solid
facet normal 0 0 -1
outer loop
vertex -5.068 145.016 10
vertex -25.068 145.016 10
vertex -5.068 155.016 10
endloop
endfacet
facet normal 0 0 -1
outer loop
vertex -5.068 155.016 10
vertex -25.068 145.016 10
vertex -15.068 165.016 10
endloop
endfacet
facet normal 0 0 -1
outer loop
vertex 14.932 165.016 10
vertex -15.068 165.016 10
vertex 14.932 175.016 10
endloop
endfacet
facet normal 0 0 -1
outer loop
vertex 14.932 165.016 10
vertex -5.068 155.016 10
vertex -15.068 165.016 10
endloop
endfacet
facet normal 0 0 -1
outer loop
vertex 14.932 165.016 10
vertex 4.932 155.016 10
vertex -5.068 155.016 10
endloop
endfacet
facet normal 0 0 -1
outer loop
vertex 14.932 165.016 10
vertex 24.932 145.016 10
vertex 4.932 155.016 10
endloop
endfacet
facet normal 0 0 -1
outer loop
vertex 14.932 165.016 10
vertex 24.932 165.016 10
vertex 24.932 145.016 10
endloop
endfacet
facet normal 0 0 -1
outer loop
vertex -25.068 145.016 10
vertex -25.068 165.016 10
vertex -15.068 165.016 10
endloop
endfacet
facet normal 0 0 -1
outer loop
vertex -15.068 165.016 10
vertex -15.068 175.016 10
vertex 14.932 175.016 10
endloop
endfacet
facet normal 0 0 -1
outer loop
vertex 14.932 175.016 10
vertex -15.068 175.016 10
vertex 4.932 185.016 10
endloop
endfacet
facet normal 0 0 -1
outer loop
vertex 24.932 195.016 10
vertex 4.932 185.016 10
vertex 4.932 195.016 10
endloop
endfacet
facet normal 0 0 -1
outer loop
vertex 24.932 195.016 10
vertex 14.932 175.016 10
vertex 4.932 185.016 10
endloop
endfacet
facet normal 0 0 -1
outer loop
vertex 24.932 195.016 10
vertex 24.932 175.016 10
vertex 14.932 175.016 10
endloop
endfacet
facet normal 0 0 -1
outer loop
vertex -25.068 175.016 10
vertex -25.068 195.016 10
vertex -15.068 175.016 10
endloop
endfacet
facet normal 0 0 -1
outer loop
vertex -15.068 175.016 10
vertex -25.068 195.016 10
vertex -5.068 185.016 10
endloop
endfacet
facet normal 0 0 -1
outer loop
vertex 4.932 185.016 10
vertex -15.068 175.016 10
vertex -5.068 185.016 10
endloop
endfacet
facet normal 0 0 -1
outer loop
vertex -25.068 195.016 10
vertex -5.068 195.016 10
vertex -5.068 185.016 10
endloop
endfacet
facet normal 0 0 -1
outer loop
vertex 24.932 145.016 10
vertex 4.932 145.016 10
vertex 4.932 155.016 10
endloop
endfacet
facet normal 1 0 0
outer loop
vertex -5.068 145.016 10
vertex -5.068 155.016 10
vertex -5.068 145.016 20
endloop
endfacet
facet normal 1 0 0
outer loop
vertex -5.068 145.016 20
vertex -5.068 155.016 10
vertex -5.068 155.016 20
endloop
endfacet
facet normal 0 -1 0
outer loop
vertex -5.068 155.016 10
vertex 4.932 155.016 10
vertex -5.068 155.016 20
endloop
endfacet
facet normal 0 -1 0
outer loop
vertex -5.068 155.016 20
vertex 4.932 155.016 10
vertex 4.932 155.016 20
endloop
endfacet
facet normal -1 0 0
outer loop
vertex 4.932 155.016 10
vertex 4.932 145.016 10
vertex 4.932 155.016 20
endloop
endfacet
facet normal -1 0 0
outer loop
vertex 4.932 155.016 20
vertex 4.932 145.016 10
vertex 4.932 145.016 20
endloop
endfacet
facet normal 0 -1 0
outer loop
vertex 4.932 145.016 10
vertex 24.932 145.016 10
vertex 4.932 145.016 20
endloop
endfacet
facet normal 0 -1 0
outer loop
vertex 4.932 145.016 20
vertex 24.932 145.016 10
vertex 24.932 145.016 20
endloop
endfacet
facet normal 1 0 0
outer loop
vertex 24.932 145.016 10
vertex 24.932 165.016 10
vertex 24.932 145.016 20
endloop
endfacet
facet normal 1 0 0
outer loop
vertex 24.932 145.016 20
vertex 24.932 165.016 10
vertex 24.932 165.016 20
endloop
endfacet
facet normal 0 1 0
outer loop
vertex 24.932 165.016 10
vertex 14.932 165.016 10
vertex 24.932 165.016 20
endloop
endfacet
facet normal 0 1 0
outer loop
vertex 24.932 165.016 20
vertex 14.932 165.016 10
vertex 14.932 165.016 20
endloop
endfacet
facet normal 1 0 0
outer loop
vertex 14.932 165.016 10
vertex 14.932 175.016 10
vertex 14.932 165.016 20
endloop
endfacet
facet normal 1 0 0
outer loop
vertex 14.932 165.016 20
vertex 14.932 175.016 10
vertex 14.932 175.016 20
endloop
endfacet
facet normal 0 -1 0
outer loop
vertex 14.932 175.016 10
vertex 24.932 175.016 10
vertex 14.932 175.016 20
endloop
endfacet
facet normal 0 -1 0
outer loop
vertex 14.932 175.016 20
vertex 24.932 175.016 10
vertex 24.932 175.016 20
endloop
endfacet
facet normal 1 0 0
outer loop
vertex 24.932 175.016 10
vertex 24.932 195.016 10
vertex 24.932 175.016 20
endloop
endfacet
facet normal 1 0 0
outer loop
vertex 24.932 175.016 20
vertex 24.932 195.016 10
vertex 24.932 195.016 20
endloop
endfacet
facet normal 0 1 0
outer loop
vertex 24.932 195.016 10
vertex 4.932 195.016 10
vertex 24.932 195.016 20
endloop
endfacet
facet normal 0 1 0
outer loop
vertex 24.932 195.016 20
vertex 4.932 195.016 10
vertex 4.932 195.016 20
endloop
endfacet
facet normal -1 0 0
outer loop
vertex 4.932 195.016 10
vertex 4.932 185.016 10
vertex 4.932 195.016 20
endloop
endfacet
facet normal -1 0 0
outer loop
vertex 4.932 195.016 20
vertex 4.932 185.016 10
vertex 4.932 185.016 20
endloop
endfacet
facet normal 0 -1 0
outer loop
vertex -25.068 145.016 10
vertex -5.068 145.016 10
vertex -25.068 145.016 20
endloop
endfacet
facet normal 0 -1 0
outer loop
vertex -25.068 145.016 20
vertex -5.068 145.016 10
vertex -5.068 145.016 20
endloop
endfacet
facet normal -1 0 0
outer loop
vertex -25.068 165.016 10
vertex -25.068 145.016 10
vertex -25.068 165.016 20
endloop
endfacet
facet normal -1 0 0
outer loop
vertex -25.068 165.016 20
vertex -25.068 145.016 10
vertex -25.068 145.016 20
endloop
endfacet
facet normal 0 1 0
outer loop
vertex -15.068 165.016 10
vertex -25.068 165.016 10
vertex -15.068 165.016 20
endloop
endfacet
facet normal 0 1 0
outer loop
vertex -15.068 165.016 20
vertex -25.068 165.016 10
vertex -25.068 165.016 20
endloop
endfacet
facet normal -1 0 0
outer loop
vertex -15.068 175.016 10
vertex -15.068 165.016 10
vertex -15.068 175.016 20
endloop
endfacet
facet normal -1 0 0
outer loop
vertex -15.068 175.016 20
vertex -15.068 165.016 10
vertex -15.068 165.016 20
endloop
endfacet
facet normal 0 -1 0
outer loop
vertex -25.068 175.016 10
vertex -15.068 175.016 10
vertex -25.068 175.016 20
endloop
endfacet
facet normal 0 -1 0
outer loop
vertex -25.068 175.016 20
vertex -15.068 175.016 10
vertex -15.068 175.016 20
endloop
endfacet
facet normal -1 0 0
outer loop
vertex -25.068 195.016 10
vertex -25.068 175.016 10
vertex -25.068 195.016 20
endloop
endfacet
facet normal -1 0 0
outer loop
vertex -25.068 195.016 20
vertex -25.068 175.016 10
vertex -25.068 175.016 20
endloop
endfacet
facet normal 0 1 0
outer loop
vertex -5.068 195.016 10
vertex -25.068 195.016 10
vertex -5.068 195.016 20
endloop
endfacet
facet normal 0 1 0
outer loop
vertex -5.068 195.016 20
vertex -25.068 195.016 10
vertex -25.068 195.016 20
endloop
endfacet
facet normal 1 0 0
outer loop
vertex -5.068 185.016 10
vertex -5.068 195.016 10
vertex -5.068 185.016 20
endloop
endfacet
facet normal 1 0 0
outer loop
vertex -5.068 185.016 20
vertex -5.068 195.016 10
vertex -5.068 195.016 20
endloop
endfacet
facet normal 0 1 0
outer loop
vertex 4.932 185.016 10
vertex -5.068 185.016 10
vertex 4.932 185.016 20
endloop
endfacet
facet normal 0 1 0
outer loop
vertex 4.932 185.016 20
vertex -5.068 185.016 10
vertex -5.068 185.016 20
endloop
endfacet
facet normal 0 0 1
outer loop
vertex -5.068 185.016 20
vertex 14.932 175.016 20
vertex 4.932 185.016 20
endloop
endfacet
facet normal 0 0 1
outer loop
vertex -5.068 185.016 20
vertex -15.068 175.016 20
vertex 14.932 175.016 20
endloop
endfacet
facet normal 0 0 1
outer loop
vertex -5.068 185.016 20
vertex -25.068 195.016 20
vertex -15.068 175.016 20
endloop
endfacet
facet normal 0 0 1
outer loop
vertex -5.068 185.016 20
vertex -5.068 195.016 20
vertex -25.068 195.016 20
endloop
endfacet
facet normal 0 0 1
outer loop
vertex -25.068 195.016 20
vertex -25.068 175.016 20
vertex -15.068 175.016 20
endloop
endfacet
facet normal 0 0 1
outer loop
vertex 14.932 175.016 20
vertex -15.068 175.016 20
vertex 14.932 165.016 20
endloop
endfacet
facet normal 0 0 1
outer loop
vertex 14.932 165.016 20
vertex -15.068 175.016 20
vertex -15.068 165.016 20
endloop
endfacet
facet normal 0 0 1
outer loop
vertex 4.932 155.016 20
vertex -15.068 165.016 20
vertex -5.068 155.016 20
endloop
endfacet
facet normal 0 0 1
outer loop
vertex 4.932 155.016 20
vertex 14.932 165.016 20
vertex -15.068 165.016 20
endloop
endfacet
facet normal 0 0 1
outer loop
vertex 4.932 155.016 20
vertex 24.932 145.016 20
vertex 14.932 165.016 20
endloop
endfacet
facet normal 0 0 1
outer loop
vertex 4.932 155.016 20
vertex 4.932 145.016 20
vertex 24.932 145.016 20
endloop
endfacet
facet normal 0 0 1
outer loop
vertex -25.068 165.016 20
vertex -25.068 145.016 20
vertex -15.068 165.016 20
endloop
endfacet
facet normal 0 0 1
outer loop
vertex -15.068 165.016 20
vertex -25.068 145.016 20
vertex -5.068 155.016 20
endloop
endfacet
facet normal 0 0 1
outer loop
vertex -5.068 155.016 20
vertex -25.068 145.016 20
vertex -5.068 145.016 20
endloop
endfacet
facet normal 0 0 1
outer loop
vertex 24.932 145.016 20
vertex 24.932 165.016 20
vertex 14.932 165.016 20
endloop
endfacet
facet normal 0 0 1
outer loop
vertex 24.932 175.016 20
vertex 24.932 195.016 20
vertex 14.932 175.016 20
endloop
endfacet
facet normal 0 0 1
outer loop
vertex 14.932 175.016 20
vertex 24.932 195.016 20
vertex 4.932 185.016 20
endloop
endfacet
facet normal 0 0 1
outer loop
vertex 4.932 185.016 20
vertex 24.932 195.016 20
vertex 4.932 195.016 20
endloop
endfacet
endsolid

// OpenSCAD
// file: l2_rig_joint.scad
// The joint of the L2 glue rig, shared by its three parts.
//
//     GlueRig_ArmBodyToEndArmHub_A.scad   cuts the joint's +Y half from its plate's end
//     GlueRig_ArmBodyToEndArmHub_B.scad   cuts the joint's -Y half from its plate's end
//     GlueRig_ArmBodyToEndArmHub_C.scad   is the key: the whole joint, extruded
//
// A and B butt end to end on y = L2_JOINT_Y, and the key C drops into the pocket their two ends make,
// locking them in line. In plan the pocket is a 50 x 50 square with a 10 x 10 notch in the middle of
// each side: the notches on ±Y are tabs that stand in from A's and B's end walls, and the notches on
// ±X are the lips either side of the slot the two plates leave between their side rails. The joint is
// symmetric about y = L2_JOINT_Y and about x = L2_JOINT_X.
//
// Measured on all three references (scadmesh arcs, z 5 on A and B, z 15 on C), which agree to the
// third decimal. The reference is in the rigs' common frame, whose x = 0 is 0.068 off the joint's
// centre line.
//
// Included, not used, so that its constants reach the including file.

L2_JOINT_X    = -0.068;    // the joint's centre line
L2_JOINT_Y    = 170.016;   // where A's and B's ends meet
L2_JOINT_SIDE = 50.000;    // the square
L2_JOINT_TAB  = 10.000;    // each notch, square

// The joint's whole outline: the key's section, and the pocket A and B leave between them.
module l2_joint_2d()
    translate([L2_JOINT_X, L2_JOINT_Y]) difference() {
        square(L2_JOINT_SIDE, center = true);
        for (a = [0 : 90 : 270]) rotate(a)
            translate([L2_JOINT_SIDE / 2 - L2_JOINT_TAB / 2 + 0.5, 0])
                square([L2_JOINT_TAB + 1, L2_JOINT_TAB], center = true);
    }

// The half of the joint on one side of the butt line: side = +1 for A (y > L2_JOINT_Y), -1 for B.
module l2_joint_half_2d(side)
    intersection() {
        l2_joint_2d();
        translate([L2_JOINT_X - L2_JOINT_SIDE, side > 0 ? L2_JOINT_Y : L2_JOINT_Y - L2_JOINT_SIDE])
            square([2 * L2_JOINT_SIDE, L2_JOINT_SIDE]);
    }
// file: ../print_fit.scad
// Print-fit clearances, shared by every printed part's `config="revised"`.
//
// A printed part comes off the machine slightly oversize, so a feature drawn
// line-to-line against what it mates with will not go together. Each mating
// feature is drawn at its mate's nominal size plus or minus one of two
// clearances, per side, chosen by what the mate is:
//
//     FIT_PRESS    a bought part the printed one is seated on, located by
//                  or bonded to: bearings, motors, splines, CF rods, tubes
//                  and strakes
//     FIT_SLIP     another printed part, and every fastener's clearance:
//                  screw holes, nut traps and pockets
//
// A third class is not a fit, because its surfaces never meet:
//
//     FIT_RUN      a gap between two parts that turn past each other and
//                  must never touch, such as a housing and a gear's teeth
//
// A fourth class is drawn under its mate's size, not over it:
//
//     FIT_TAP      a pilot a screw cuts its own thread into, drawn as
//                  fit_pin(the screw's nominal, FIT_TAP)
//
// The classes, their members and exclusions, and how a machine is qualified
// against these values are owned by specs/007.2 § Print fits; the coupon that
// qualifies them is 950-Tooling/fit_coupon.scad.
//
// Every part `include`s this file, so `-D FIT_SLIP=...` reaches a single
// render, and an edit here retunes every part. `config="previous"` draws at
// zero clearance: it is the reference mesh, and its dist gate measures it.

FIT_SLIP  = 0.15;
FIT_PRESS = 0.05;
FIT_RUN   = 0.50;
FIT_TAP   = 0.20;

// A hole or bore that takes a mate of diameter d, and a pin or shaft that
// goes into one, with clearance c per side.
function fit_bore(d, c) = d + 2 * c;
function fit_pin(d, c) = d - 2 * c;

// The clearances a part draws in configuration cfg: [slip, press, run, tap].
function fit_clearances(cfg) =
    cfg == "previous" ? [0, 0, 0, 0] : [FIT_SLIP, FIT_PRESS, FIT_RUN, FIT_TAP];
// main file
// GlueRig_ArmBodyToEndArmHub_C — the L2 glue rig's key — parametric source.
// The L2 rig is three printed parts: B holds the Arm Body, A holds the Axis Intersection Half, and
// this key drops into the pocket their butted ends make and locks them in line while the L2 tube's
// epoxy cures (specs/007.2 § Tooling — glue rigs).
//
//   config = "previous" — a faithful recreation of the reference mesh
//                         (../Reference/meshes/950-Tooling/), in that mesh's frame.
//   config = "revised"  — the key with the slip fit drawn on every face it meets A and B with.
//
// FRAME. The rig's common frame, the reference's own: the key lies over the joint at z 10 .. 20, a
// plate's thickness above the pocket (z 0 .. 10) it drops into.
//
// CONSTRUCTION. One layer: the joint's outline (l2_rig_joint.scad), extruded. `layer = "key"` draws
// it in 2D for verification against the mesh's section.
//
// Measured from the reference with scadmesh planes/slice/arcs (it is 76 triangles):
//
//     ID  feature        value
//     K1  key            the joint, 50 x 50 with a 10 x 10 notch mid-side, z 10 .. 20
//
// FITS (../print_fit.scad), revised only:
//
//     K1, every side, in A's and B's pocket and round their tabs and lips    slip
//
// The key carries the whole clearance, so A's and B's pockets are drawn as the reference has them.

include <../print_fit.scad>
include <l2_rig_joint.scad>

/* [Configuration] */
// Parameter set: previous (reference) or revised
config = "previous"; // [previous, revised]
// What to draw: the part, or its 2D profile
layer = "part"; // [part, key]

/* [Hidden] */
KEY_Z = [10.000, 20.000];   // K1

SLIP = fit_clearances(config)[0];

module key_2d() offset(delta = -SLIP) l2_joint_2d();

if (layer == "key") key_2d();
else translate([0, 0, KEY_Z[0]]) linear_extrude(KEY_Z[1] - KEY_Z[0]) key_2d();
